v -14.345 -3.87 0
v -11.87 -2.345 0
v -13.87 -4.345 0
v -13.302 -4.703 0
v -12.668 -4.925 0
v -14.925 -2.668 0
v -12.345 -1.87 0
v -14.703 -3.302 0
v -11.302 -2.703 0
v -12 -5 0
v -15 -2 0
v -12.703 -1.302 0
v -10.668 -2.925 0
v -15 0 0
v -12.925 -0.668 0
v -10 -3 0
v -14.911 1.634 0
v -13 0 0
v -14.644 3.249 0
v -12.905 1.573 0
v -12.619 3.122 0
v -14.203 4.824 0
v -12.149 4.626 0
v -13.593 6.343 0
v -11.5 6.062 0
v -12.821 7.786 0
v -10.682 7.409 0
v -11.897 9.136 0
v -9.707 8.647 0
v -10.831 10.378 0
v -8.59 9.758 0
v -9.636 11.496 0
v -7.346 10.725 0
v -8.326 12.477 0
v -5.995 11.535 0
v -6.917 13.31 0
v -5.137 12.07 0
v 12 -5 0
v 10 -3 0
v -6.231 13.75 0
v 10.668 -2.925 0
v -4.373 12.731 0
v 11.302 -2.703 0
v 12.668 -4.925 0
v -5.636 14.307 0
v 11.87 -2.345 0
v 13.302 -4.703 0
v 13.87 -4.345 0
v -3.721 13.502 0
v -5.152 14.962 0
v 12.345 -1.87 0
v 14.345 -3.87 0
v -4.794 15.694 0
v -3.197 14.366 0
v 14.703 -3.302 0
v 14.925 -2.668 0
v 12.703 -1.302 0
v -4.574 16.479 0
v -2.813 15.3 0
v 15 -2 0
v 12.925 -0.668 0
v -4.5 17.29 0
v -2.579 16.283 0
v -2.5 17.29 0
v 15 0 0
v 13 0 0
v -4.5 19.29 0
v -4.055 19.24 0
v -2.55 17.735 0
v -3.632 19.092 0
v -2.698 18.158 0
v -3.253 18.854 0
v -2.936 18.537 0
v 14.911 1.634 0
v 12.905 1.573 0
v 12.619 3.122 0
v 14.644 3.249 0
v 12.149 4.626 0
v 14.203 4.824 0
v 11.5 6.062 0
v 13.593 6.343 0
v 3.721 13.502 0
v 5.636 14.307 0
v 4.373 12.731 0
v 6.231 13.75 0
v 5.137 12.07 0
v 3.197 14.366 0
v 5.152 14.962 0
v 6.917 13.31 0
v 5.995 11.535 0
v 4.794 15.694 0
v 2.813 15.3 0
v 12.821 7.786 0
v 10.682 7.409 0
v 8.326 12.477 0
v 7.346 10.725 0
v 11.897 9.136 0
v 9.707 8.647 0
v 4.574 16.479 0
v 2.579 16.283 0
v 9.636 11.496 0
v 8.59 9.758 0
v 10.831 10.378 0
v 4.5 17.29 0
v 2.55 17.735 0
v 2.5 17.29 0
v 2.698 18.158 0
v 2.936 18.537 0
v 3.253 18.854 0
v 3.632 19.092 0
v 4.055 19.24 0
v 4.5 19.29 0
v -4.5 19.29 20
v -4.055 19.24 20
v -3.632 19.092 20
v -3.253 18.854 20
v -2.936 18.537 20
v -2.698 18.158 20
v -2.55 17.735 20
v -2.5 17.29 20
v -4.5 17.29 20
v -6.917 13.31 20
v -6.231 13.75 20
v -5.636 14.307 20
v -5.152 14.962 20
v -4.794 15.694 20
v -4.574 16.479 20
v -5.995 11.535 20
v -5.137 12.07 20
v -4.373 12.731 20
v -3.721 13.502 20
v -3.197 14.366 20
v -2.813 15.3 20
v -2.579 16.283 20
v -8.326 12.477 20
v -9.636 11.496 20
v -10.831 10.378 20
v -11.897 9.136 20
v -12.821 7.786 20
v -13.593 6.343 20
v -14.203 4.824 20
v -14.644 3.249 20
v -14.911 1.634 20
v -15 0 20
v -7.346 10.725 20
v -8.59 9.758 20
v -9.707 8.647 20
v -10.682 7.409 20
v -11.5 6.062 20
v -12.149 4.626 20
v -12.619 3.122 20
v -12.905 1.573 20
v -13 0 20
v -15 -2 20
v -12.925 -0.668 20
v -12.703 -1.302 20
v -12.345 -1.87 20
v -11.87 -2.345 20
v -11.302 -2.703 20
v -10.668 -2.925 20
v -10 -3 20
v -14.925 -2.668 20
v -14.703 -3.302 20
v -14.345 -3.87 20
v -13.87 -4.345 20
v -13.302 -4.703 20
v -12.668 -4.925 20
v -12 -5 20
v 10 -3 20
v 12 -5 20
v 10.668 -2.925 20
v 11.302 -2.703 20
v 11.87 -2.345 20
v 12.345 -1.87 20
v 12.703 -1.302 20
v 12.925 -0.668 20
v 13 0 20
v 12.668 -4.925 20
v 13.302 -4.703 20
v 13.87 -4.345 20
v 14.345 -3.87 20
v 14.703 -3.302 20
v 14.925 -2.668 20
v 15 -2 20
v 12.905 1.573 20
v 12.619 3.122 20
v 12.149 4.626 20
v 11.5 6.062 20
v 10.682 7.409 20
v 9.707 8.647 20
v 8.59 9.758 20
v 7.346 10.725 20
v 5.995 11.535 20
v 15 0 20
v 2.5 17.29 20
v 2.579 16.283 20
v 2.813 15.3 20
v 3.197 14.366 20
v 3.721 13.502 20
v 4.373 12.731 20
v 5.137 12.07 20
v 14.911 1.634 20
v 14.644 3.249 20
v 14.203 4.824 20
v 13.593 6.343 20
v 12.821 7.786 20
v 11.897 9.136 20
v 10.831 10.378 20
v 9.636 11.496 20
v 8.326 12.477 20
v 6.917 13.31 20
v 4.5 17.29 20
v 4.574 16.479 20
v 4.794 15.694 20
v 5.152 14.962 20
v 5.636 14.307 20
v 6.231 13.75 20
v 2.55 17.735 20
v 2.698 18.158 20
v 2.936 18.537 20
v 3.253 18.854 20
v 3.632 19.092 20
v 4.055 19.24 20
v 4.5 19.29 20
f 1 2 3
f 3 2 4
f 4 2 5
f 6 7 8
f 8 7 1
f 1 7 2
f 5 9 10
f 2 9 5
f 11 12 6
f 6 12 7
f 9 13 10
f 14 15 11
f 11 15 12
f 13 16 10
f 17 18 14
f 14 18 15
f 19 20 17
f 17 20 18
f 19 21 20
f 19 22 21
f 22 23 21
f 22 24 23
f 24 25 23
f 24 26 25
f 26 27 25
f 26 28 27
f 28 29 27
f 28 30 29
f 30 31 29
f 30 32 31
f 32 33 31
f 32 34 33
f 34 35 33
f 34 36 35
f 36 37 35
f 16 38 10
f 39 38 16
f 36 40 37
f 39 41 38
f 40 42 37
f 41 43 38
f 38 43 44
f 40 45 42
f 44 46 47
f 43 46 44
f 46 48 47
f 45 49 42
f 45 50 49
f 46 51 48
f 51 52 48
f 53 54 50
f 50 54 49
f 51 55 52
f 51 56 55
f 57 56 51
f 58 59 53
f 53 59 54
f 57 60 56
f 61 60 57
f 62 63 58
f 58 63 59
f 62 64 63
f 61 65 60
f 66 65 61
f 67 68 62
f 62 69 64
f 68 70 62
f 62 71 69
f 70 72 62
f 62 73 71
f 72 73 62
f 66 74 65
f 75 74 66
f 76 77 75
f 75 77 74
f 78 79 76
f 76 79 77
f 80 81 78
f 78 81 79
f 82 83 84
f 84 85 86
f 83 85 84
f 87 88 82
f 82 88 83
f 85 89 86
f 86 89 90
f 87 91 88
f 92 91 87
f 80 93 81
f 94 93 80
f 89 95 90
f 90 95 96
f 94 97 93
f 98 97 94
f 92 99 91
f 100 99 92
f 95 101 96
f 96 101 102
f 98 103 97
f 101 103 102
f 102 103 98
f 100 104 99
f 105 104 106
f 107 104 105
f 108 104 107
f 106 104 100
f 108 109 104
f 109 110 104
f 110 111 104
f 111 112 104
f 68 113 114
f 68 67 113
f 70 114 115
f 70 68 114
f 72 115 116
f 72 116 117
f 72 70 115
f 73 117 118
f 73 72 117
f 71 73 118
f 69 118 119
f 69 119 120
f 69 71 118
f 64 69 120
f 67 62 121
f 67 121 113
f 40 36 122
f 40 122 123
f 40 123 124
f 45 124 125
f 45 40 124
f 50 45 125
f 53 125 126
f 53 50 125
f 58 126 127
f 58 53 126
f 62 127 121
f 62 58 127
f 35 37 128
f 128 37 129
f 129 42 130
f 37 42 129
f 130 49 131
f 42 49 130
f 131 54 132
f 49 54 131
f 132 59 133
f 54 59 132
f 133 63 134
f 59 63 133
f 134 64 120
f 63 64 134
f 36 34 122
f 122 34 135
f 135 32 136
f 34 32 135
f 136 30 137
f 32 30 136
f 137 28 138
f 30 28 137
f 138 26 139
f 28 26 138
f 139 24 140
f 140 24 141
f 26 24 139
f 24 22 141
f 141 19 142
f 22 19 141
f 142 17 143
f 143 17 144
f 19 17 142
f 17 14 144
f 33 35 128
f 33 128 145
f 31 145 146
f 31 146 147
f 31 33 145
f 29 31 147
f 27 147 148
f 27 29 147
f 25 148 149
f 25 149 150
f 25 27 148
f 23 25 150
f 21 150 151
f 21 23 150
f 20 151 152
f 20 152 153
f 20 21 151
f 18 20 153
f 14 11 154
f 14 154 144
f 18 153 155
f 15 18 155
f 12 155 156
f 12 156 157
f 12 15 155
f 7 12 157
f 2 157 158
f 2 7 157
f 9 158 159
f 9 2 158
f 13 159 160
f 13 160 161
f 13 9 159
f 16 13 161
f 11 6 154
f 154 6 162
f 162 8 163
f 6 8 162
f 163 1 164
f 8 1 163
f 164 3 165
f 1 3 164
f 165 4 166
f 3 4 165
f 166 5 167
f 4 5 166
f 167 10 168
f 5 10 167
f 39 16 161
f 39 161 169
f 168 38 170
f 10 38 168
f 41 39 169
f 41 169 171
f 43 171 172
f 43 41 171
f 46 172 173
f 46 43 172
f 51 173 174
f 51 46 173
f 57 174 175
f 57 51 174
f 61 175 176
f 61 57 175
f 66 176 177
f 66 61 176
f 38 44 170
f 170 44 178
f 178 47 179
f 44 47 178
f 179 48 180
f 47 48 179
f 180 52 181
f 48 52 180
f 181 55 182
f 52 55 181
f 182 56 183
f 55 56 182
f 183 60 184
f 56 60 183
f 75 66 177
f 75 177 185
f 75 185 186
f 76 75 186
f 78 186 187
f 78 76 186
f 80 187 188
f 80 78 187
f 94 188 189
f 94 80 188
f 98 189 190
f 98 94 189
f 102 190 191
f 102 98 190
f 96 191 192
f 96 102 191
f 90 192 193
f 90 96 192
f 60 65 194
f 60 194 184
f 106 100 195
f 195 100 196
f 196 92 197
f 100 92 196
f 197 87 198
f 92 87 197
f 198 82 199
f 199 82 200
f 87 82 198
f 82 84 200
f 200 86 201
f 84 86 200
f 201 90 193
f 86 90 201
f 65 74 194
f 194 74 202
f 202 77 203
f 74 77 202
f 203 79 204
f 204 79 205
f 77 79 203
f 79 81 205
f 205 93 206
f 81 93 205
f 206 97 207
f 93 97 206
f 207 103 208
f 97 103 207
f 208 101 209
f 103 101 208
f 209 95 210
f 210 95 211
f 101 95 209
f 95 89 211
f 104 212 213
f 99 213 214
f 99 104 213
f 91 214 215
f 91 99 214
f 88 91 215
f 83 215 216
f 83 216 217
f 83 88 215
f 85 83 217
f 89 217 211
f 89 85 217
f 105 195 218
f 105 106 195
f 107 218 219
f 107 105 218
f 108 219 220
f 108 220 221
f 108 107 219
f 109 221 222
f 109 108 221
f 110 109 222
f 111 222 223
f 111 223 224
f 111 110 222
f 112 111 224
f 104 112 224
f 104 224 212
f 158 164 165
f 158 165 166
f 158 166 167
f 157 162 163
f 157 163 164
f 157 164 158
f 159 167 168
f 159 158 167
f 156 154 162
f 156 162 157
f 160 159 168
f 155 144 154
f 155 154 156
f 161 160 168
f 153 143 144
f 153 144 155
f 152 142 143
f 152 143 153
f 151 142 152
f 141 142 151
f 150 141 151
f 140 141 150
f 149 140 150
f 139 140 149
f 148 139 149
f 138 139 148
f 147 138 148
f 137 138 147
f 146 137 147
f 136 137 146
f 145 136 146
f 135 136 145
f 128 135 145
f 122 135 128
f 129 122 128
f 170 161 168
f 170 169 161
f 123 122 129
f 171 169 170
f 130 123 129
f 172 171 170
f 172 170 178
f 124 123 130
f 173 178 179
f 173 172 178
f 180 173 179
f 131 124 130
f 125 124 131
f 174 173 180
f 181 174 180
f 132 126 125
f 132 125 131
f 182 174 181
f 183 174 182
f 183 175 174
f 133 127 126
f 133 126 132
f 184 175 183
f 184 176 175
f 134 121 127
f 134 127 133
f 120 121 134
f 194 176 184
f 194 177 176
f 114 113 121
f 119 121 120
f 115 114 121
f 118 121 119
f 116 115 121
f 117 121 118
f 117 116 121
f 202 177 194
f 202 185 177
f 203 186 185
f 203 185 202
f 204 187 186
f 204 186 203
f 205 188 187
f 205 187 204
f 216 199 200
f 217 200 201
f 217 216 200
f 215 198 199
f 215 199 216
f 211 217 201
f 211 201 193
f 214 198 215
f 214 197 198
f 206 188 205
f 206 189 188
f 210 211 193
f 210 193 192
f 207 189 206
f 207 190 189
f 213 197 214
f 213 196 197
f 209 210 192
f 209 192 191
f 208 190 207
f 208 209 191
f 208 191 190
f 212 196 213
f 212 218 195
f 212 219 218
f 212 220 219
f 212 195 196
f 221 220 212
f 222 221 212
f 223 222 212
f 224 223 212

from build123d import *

# Parameters (mm, degrees)
PAD_DEPTH    = 20
SKETCH001_W  = 5
SKETCH001_H  = 2
POCKET_DEPTH = 20.001
FILLET_R     = 1.9999


with BuildPart() as part:
    # Sketch → Pad (new body)
    with BuildSketch(Plane.XY):
        with BuildLine():
            Line((15, 0), (15, -2))
            ThreePointArc((12, -5), (14.12132, -4.12132), (15, -2))
            Line((12, -5), (-12, -5))
            ThreePointArc((-15, -2), (-14.12132, -4.12132), (-12, -5))
            Line((-15, -2), (-15, 0))
            ThreePointArc((-6.917175, 13.309872), (-12.82103, 7.785961), (-15, 0))
            ThreePointArc((-6.917175, 13.309872), (-5.151623, 14.961802), (-4.5, 17.290199))
            Line((-4.5, 17.290199), (-4.5, 19.290199))
            Line((-4.5, 19.290199), (4.5, 19.290199))
            Line((4.5, 19.290199), (4.5, 17.290199))
            ThreePointArc((4.5, 17.290199), (5.151623, 14.961802), (6.917175, 13.309872))
            ThreePointArc((15, 0), (12.82103, 7.785961), (6.917175, 13.309872))
        make_face()
        with BuildLine():
            Line((-10, -3), (10, -3))
            ThreePointArc((10, -3), (12.12132, -2.12132), (13, 0))
            ThreePointArc((13, 0), (11.111559, 6.747833), (5.994885, 11.535222))
            ThreePointArc((2.5, 17.290199), (3.442152, 13.923674), (5.994885, 11.535222))
            Line((-2.5, 17.290199), (2.5, 17.290199))
            ThreePointArc((-5.994885, 11.535222), (-3.442152, 13.923674), (-2.5, 17.290199))
            ThreePointArc((-5.994885, 11.535222), (-11.111559, 6.747833), (-13, 0))
            ThreePointArc((-13, 0), (-12.12132, -2.12132), (-10, -3))
        make_face(mode=Mode.SUBTRACT)
    extrude(amount=PAD_DEPTH)

    # Sketch001 (on Face22 of Pad) → Pocket (cut, through all)
    with BuildSketch(Plane.XY.offset(20)):
        with Locations((0, 18.290199)):
            Rectangle(SKETCH001_W, SKETCH001_H)
    extrude(amount=-POCKET_DEPTH, mode=Mode.SUBTRACT)

    # Fillet
    fillet_edges = [part.edges().sort_by_distance(p)[0] for p in [
        (-2.5, 19.290199, 10),
        (2.5, 19.290199, 10),
    ]]
    fillet(fillet_edges, radius=FILLET_R)


solid = part.part
